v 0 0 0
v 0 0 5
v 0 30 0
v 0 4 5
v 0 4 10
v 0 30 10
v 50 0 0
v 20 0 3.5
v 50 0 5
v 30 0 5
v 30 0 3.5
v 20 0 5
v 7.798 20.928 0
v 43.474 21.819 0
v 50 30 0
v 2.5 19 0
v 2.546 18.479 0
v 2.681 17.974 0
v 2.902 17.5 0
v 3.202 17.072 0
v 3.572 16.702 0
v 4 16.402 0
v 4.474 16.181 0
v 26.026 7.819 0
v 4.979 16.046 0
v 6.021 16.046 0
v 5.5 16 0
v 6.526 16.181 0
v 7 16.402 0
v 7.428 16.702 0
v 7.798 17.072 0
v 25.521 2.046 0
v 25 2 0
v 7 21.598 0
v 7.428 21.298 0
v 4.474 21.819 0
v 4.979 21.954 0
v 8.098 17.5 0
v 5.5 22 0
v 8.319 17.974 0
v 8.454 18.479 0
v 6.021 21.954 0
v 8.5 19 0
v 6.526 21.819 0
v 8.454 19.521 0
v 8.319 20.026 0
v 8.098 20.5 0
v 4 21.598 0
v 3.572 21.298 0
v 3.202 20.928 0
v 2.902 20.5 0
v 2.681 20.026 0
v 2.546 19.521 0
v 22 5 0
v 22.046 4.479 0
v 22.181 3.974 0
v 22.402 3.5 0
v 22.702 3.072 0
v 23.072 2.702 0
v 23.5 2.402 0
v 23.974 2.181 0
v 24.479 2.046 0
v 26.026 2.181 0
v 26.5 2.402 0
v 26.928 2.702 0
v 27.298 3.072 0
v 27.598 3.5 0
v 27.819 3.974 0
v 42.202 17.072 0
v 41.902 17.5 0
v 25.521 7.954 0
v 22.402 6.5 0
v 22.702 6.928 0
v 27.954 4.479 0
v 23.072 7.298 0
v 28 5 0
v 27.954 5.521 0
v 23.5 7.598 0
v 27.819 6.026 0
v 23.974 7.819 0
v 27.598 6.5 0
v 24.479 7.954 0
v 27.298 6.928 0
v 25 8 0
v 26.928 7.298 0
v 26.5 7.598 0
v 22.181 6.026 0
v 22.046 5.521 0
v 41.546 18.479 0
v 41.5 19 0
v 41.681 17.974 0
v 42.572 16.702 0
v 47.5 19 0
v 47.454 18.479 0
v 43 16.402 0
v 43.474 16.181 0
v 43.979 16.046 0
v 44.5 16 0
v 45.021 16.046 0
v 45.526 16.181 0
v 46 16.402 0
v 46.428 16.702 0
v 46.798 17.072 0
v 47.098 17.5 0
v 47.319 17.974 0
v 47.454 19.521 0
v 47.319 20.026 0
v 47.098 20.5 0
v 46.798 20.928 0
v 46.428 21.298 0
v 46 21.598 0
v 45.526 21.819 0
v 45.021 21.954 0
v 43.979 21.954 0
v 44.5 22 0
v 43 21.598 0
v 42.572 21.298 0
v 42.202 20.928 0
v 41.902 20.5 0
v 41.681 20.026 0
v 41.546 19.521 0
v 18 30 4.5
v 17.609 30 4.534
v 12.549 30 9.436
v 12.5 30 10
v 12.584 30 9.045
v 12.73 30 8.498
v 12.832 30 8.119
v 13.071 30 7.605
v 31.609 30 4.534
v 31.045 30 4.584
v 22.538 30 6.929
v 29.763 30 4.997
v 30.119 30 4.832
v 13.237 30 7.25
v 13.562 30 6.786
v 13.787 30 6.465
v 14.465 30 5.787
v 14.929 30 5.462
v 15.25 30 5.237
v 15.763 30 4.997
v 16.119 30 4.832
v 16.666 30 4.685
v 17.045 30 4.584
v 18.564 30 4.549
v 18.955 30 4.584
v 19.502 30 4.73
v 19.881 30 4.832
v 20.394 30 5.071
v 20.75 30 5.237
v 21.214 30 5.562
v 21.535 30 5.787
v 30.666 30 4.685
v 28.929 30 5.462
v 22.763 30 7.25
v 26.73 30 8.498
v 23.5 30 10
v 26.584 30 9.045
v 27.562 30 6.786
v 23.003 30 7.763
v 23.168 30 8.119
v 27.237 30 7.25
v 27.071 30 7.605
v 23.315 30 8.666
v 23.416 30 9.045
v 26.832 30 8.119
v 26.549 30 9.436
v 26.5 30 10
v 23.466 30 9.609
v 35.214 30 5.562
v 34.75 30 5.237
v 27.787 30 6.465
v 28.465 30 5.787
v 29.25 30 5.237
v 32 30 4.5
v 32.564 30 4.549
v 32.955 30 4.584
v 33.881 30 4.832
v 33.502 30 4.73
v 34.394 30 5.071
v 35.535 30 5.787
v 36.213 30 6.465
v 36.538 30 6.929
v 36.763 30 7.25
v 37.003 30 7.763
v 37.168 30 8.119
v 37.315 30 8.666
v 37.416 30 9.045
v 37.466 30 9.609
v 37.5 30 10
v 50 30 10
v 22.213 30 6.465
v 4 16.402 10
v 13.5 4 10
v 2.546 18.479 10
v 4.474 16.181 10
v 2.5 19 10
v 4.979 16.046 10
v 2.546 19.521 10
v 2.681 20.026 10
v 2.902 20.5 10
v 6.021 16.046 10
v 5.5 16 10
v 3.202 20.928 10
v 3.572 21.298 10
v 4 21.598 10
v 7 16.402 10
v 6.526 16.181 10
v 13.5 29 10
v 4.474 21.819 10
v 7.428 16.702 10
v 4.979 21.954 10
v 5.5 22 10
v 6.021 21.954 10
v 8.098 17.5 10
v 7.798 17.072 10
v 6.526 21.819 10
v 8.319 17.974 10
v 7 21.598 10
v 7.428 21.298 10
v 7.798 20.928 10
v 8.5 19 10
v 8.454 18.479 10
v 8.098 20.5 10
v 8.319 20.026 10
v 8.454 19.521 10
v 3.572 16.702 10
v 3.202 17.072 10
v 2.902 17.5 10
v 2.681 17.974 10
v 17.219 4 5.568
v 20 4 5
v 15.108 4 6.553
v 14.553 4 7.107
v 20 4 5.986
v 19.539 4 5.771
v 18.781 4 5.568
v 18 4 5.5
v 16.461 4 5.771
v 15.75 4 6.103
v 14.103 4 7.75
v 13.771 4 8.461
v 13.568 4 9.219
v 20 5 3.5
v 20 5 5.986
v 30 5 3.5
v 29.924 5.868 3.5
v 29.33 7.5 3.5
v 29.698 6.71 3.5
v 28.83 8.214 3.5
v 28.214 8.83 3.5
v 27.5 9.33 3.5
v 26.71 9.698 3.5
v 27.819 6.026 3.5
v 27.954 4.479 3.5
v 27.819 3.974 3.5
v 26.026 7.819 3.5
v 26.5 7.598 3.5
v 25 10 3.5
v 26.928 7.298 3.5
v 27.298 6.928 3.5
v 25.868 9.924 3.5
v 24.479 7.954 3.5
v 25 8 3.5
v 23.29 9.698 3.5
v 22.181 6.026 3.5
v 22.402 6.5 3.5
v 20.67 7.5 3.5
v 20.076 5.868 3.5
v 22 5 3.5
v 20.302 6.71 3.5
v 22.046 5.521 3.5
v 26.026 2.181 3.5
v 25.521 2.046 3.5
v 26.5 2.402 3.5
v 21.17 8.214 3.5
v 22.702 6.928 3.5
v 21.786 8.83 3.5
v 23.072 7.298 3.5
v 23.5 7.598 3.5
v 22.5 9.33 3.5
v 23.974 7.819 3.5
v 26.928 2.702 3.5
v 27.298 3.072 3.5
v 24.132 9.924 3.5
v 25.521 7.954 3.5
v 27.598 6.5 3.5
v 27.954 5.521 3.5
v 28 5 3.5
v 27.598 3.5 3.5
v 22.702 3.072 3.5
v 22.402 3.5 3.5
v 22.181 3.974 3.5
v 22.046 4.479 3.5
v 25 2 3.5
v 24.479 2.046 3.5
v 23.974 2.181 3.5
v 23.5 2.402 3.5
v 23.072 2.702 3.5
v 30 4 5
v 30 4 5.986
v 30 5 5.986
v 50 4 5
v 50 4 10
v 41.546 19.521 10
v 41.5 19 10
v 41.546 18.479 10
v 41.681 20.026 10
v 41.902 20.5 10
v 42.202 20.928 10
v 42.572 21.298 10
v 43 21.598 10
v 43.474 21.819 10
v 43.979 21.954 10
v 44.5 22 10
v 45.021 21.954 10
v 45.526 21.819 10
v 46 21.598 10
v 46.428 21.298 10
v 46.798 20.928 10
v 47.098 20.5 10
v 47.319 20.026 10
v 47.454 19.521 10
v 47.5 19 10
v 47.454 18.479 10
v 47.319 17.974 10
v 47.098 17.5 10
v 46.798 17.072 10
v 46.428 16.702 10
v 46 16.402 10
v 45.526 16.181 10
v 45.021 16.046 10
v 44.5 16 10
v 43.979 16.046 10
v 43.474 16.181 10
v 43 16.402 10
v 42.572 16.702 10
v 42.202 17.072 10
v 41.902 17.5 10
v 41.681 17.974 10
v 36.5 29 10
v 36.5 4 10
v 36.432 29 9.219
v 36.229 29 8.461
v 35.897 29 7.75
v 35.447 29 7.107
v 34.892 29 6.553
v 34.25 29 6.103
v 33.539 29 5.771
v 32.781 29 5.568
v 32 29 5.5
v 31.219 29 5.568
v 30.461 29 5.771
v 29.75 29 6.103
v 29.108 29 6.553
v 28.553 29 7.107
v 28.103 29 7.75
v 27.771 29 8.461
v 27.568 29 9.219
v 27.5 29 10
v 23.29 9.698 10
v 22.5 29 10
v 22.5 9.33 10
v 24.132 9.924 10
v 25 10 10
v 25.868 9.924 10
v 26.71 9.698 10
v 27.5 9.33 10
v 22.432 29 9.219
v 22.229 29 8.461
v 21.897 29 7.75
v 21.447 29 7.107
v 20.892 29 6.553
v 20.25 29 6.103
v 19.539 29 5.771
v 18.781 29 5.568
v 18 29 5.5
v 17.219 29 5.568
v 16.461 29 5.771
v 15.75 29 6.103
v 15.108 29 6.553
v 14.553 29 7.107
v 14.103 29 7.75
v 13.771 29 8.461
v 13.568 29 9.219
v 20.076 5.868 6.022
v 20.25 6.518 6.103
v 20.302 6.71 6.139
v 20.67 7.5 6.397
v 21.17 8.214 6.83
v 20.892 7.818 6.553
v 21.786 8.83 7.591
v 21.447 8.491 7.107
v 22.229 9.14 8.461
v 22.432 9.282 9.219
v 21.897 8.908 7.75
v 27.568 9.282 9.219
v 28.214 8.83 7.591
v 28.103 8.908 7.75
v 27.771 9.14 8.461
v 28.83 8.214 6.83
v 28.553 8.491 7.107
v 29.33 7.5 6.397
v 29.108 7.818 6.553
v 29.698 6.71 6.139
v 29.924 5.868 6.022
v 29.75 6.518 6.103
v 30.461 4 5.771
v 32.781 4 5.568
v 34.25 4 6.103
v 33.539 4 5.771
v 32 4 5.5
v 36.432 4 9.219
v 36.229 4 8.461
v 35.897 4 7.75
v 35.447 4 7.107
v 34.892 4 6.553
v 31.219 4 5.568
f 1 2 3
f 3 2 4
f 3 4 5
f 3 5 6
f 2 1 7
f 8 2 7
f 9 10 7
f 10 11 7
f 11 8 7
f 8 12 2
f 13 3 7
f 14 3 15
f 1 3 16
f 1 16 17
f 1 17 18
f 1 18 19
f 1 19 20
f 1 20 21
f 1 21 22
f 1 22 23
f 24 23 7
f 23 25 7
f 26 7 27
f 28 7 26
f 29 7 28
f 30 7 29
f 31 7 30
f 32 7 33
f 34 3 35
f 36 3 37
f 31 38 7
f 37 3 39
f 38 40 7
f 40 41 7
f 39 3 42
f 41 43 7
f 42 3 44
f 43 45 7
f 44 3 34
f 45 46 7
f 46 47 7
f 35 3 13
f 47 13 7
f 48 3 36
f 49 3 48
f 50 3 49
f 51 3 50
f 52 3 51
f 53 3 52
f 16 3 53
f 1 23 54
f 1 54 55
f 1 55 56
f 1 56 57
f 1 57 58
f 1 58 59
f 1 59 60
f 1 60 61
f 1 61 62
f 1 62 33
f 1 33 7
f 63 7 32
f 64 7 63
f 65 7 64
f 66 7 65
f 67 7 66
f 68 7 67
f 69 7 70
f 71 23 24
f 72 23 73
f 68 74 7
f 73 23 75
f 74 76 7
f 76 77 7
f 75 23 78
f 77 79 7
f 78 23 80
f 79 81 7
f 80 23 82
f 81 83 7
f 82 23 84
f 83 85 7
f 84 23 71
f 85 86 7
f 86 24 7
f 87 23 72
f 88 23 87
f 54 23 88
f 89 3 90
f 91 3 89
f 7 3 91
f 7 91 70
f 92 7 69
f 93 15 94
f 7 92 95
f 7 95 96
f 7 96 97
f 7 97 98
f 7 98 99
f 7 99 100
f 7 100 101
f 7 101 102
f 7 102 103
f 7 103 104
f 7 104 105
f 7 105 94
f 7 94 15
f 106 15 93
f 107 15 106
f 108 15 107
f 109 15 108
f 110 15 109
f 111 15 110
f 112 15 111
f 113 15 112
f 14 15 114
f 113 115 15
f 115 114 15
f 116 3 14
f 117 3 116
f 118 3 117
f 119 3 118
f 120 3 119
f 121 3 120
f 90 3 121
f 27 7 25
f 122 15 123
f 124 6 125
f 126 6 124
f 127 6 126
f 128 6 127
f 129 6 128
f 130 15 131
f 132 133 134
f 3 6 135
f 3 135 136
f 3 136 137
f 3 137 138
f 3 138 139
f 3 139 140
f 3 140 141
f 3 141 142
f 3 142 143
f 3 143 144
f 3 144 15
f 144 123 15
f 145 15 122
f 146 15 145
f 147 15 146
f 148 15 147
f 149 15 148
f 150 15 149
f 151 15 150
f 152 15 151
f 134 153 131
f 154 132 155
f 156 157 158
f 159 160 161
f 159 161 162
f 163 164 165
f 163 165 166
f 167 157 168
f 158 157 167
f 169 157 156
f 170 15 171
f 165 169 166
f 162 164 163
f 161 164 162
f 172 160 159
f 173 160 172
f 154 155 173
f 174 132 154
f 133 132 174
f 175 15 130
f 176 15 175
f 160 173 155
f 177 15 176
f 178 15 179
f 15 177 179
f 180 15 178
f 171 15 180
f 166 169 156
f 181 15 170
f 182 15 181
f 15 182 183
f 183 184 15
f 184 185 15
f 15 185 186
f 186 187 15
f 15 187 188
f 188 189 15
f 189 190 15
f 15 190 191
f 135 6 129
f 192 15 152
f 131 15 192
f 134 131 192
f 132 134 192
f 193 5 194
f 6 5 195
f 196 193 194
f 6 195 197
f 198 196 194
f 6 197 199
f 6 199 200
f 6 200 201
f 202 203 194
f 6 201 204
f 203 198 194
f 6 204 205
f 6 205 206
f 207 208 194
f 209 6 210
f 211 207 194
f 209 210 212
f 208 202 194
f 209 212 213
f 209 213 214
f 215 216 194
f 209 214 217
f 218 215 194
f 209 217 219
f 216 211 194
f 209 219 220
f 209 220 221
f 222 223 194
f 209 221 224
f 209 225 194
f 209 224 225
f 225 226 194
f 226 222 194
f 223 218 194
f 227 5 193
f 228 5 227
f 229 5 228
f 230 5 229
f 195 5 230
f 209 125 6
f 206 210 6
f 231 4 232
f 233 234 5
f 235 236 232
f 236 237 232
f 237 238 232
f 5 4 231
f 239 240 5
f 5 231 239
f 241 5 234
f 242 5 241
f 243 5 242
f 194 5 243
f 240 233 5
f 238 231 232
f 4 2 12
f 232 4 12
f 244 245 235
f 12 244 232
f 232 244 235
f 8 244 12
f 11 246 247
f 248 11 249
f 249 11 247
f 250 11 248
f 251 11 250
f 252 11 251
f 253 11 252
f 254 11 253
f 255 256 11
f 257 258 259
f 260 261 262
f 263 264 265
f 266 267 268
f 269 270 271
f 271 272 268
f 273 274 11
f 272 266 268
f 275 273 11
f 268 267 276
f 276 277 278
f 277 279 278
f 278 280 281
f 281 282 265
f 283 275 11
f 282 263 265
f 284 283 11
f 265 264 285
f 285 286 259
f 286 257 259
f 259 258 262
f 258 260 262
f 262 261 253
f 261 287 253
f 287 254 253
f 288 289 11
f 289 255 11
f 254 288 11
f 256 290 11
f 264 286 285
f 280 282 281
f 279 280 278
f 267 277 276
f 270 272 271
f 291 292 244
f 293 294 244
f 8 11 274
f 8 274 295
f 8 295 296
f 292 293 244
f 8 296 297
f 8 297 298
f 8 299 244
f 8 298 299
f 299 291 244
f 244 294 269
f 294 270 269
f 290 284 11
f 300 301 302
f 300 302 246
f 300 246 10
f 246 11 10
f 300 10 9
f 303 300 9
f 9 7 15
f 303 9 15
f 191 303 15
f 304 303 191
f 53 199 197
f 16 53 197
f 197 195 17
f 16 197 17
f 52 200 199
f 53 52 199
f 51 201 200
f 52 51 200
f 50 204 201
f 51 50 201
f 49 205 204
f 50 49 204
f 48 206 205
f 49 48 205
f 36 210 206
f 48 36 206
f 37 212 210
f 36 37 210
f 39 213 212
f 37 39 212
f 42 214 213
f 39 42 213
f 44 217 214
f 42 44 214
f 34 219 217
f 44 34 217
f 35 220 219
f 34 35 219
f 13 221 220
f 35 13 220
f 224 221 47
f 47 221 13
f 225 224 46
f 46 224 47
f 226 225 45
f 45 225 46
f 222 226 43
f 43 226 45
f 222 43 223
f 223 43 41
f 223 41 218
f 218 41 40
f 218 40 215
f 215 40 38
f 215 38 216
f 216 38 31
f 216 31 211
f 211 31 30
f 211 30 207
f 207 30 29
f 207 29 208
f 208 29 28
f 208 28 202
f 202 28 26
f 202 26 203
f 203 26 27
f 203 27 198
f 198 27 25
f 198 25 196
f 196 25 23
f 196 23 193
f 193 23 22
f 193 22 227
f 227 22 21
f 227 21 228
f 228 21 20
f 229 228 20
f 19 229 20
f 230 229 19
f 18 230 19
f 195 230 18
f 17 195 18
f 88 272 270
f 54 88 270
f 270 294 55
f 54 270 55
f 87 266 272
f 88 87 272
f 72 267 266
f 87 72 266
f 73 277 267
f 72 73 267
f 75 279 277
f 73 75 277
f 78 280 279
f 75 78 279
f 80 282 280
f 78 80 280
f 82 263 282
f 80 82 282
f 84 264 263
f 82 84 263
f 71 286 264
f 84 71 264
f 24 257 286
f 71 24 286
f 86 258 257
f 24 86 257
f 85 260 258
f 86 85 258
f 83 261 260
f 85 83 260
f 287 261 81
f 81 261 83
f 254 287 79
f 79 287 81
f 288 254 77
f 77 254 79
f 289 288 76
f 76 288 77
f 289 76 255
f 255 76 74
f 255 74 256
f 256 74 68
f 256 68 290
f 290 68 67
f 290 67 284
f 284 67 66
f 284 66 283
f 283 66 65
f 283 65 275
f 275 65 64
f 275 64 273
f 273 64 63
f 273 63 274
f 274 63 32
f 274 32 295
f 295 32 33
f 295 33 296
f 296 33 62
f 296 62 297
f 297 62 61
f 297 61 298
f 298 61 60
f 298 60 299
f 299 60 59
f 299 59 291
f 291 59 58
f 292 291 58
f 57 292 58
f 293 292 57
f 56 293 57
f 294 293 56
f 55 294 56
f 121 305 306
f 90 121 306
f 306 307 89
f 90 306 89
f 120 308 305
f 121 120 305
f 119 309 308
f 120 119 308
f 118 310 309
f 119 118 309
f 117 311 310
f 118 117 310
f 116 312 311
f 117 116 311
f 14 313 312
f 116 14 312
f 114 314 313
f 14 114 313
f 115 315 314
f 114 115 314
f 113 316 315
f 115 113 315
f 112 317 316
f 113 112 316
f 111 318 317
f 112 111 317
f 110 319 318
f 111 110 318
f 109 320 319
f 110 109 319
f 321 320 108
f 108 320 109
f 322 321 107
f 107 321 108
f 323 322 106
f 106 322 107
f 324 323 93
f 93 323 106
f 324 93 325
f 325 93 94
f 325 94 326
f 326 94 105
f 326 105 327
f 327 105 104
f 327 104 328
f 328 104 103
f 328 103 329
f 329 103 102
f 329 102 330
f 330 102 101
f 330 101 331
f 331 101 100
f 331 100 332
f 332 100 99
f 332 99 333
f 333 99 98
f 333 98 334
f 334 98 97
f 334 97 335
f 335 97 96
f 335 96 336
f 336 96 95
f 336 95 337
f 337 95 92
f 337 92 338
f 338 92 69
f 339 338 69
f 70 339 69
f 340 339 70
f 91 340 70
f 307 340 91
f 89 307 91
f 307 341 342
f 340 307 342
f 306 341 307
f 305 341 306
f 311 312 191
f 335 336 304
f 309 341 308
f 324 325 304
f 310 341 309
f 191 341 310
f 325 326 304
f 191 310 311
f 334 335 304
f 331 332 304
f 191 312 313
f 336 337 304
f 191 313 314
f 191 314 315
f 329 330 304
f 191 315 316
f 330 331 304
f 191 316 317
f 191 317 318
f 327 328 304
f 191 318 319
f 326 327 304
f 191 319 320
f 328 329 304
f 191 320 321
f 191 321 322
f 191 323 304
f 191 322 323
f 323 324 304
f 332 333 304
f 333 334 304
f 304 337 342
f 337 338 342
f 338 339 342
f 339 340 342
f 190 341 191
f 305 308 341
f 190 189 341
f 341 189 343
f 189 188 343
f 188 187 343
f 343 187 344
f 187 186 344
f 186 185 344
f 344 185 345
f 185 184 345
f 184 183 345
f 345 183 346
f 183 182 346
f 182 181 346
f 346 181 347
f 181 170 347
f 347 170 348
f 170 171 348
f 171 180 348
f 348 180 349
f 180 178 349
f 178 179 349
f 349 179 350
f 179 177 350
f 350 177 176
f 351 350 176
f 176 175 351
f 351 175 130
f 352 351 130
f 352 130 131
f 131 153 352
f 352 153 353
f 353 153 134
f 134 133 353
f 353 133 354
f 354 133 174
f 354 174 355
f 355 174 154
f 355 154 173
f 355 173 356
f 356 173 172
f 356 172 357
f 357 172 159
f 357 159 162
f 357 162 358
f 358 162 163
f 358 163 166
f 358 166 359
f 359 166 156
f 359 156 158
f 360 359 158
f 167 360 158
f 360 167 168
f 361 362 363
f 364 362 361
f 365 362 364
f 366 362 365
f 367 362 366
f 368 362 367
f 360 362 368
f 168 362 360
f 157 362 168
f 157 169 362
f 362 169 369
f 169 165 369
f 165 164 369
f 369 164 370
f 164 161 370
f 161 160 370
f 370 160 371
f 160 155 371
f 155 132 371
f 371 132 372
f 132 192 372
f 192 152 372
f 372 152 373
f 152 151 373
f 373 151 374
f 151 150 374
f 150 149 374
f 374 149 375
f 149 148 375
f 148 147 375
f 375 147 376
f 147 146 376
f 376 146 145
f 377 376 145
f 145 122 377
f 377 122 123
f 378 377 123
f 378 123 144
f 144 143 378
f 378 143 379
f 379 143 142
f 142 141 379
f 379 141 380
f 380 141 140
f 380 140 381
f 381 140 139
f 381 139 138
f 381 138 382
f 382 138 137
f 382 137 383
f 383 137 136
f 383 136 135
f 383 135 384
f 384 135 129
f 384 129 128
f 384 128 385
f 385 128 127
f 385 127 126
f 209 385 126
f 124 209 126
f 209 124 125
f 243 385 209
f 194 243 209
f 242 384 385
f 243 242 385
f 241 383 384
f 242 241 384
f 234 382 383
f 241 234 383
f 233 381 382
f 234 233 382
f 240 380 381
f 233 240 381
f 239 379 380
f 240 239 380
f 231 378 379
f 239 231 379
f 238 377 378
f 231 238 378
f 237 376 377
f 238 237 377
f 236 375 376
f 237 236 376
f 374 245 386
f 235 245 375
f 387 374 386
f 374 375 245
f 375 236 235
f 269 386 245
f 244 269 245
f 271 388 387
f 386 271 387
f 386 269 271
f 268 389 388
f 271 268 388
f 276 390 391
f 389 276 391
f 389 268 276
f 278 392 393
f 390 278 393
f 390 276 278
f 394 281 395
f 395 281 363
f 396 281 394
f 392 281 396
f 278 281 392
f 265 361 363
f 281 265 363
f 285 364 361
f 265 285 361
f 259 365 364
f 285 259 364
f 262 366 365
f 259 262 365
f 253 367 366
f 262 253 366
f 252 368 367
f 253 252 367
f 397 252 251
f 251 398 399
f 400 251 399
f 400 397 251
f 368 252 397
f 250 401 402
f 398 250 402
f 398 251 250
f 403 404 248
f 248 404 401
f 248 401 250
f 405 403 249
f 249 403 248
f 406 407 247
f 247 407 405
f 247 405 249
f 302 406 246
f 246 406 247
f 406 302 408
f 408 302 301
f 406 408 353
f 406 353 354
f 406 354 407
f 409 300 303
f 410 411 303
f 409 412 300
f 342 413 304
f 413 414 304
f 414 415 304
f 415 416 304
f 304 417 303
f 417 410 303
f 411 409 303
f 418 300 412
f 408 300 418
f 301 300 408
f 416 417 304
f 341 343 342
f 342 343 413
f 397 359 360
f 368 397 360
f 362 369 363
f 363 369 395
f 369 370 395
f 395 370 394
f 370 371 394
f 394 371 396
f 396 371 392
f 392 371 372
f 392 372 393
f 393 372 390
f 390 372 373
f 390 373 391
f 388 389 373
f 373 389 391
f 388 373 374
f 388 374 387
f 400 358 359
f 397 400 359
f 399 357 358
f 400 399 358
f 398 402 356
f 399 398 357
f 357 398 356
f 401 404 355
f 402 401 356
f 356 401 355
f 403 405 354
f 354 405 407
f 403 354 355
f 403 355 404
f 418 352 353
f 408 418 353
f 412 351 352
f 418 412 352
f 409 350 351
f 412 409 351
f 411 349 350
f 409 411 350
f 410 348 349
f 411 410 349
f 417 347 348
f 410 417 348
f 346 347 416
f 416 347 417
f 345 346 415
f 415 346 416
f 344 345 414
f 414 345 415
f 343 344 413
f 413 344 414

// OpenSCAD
$fn=36;

difference()
{
	union()
	{
		cube([50,30,5]);
		translate([0,4,5]) cube([50,26,5]);
	}
	
	translate([5.5, 19, -1]) cylinder(30,3,3);
	translate([44.5, 19, -1]) cylinder(30,3,3);

	translate([25, 5, -1]) cylinder(30,3,3);
	translate([25, 5, 3.5]) cylinder(30, 5, 5);
	translate([20, -5, 3.5]) cube(10);

	translate([18,-1,10]) rotate([-90,0,0]) cylinder(32, 4.5, 4.5);
	translate([18,29,10]) rotate([-90,0,0]) cylinder(2, 4.5, 6.5);

	translate([32,-1,10]) rotate([-90,0,0]) cylinder(32, 4.5, 4.5);
	translate([32,29,10]) rotate([-90,0,0]) cylinder(2, 4.5, 6.5);
}
